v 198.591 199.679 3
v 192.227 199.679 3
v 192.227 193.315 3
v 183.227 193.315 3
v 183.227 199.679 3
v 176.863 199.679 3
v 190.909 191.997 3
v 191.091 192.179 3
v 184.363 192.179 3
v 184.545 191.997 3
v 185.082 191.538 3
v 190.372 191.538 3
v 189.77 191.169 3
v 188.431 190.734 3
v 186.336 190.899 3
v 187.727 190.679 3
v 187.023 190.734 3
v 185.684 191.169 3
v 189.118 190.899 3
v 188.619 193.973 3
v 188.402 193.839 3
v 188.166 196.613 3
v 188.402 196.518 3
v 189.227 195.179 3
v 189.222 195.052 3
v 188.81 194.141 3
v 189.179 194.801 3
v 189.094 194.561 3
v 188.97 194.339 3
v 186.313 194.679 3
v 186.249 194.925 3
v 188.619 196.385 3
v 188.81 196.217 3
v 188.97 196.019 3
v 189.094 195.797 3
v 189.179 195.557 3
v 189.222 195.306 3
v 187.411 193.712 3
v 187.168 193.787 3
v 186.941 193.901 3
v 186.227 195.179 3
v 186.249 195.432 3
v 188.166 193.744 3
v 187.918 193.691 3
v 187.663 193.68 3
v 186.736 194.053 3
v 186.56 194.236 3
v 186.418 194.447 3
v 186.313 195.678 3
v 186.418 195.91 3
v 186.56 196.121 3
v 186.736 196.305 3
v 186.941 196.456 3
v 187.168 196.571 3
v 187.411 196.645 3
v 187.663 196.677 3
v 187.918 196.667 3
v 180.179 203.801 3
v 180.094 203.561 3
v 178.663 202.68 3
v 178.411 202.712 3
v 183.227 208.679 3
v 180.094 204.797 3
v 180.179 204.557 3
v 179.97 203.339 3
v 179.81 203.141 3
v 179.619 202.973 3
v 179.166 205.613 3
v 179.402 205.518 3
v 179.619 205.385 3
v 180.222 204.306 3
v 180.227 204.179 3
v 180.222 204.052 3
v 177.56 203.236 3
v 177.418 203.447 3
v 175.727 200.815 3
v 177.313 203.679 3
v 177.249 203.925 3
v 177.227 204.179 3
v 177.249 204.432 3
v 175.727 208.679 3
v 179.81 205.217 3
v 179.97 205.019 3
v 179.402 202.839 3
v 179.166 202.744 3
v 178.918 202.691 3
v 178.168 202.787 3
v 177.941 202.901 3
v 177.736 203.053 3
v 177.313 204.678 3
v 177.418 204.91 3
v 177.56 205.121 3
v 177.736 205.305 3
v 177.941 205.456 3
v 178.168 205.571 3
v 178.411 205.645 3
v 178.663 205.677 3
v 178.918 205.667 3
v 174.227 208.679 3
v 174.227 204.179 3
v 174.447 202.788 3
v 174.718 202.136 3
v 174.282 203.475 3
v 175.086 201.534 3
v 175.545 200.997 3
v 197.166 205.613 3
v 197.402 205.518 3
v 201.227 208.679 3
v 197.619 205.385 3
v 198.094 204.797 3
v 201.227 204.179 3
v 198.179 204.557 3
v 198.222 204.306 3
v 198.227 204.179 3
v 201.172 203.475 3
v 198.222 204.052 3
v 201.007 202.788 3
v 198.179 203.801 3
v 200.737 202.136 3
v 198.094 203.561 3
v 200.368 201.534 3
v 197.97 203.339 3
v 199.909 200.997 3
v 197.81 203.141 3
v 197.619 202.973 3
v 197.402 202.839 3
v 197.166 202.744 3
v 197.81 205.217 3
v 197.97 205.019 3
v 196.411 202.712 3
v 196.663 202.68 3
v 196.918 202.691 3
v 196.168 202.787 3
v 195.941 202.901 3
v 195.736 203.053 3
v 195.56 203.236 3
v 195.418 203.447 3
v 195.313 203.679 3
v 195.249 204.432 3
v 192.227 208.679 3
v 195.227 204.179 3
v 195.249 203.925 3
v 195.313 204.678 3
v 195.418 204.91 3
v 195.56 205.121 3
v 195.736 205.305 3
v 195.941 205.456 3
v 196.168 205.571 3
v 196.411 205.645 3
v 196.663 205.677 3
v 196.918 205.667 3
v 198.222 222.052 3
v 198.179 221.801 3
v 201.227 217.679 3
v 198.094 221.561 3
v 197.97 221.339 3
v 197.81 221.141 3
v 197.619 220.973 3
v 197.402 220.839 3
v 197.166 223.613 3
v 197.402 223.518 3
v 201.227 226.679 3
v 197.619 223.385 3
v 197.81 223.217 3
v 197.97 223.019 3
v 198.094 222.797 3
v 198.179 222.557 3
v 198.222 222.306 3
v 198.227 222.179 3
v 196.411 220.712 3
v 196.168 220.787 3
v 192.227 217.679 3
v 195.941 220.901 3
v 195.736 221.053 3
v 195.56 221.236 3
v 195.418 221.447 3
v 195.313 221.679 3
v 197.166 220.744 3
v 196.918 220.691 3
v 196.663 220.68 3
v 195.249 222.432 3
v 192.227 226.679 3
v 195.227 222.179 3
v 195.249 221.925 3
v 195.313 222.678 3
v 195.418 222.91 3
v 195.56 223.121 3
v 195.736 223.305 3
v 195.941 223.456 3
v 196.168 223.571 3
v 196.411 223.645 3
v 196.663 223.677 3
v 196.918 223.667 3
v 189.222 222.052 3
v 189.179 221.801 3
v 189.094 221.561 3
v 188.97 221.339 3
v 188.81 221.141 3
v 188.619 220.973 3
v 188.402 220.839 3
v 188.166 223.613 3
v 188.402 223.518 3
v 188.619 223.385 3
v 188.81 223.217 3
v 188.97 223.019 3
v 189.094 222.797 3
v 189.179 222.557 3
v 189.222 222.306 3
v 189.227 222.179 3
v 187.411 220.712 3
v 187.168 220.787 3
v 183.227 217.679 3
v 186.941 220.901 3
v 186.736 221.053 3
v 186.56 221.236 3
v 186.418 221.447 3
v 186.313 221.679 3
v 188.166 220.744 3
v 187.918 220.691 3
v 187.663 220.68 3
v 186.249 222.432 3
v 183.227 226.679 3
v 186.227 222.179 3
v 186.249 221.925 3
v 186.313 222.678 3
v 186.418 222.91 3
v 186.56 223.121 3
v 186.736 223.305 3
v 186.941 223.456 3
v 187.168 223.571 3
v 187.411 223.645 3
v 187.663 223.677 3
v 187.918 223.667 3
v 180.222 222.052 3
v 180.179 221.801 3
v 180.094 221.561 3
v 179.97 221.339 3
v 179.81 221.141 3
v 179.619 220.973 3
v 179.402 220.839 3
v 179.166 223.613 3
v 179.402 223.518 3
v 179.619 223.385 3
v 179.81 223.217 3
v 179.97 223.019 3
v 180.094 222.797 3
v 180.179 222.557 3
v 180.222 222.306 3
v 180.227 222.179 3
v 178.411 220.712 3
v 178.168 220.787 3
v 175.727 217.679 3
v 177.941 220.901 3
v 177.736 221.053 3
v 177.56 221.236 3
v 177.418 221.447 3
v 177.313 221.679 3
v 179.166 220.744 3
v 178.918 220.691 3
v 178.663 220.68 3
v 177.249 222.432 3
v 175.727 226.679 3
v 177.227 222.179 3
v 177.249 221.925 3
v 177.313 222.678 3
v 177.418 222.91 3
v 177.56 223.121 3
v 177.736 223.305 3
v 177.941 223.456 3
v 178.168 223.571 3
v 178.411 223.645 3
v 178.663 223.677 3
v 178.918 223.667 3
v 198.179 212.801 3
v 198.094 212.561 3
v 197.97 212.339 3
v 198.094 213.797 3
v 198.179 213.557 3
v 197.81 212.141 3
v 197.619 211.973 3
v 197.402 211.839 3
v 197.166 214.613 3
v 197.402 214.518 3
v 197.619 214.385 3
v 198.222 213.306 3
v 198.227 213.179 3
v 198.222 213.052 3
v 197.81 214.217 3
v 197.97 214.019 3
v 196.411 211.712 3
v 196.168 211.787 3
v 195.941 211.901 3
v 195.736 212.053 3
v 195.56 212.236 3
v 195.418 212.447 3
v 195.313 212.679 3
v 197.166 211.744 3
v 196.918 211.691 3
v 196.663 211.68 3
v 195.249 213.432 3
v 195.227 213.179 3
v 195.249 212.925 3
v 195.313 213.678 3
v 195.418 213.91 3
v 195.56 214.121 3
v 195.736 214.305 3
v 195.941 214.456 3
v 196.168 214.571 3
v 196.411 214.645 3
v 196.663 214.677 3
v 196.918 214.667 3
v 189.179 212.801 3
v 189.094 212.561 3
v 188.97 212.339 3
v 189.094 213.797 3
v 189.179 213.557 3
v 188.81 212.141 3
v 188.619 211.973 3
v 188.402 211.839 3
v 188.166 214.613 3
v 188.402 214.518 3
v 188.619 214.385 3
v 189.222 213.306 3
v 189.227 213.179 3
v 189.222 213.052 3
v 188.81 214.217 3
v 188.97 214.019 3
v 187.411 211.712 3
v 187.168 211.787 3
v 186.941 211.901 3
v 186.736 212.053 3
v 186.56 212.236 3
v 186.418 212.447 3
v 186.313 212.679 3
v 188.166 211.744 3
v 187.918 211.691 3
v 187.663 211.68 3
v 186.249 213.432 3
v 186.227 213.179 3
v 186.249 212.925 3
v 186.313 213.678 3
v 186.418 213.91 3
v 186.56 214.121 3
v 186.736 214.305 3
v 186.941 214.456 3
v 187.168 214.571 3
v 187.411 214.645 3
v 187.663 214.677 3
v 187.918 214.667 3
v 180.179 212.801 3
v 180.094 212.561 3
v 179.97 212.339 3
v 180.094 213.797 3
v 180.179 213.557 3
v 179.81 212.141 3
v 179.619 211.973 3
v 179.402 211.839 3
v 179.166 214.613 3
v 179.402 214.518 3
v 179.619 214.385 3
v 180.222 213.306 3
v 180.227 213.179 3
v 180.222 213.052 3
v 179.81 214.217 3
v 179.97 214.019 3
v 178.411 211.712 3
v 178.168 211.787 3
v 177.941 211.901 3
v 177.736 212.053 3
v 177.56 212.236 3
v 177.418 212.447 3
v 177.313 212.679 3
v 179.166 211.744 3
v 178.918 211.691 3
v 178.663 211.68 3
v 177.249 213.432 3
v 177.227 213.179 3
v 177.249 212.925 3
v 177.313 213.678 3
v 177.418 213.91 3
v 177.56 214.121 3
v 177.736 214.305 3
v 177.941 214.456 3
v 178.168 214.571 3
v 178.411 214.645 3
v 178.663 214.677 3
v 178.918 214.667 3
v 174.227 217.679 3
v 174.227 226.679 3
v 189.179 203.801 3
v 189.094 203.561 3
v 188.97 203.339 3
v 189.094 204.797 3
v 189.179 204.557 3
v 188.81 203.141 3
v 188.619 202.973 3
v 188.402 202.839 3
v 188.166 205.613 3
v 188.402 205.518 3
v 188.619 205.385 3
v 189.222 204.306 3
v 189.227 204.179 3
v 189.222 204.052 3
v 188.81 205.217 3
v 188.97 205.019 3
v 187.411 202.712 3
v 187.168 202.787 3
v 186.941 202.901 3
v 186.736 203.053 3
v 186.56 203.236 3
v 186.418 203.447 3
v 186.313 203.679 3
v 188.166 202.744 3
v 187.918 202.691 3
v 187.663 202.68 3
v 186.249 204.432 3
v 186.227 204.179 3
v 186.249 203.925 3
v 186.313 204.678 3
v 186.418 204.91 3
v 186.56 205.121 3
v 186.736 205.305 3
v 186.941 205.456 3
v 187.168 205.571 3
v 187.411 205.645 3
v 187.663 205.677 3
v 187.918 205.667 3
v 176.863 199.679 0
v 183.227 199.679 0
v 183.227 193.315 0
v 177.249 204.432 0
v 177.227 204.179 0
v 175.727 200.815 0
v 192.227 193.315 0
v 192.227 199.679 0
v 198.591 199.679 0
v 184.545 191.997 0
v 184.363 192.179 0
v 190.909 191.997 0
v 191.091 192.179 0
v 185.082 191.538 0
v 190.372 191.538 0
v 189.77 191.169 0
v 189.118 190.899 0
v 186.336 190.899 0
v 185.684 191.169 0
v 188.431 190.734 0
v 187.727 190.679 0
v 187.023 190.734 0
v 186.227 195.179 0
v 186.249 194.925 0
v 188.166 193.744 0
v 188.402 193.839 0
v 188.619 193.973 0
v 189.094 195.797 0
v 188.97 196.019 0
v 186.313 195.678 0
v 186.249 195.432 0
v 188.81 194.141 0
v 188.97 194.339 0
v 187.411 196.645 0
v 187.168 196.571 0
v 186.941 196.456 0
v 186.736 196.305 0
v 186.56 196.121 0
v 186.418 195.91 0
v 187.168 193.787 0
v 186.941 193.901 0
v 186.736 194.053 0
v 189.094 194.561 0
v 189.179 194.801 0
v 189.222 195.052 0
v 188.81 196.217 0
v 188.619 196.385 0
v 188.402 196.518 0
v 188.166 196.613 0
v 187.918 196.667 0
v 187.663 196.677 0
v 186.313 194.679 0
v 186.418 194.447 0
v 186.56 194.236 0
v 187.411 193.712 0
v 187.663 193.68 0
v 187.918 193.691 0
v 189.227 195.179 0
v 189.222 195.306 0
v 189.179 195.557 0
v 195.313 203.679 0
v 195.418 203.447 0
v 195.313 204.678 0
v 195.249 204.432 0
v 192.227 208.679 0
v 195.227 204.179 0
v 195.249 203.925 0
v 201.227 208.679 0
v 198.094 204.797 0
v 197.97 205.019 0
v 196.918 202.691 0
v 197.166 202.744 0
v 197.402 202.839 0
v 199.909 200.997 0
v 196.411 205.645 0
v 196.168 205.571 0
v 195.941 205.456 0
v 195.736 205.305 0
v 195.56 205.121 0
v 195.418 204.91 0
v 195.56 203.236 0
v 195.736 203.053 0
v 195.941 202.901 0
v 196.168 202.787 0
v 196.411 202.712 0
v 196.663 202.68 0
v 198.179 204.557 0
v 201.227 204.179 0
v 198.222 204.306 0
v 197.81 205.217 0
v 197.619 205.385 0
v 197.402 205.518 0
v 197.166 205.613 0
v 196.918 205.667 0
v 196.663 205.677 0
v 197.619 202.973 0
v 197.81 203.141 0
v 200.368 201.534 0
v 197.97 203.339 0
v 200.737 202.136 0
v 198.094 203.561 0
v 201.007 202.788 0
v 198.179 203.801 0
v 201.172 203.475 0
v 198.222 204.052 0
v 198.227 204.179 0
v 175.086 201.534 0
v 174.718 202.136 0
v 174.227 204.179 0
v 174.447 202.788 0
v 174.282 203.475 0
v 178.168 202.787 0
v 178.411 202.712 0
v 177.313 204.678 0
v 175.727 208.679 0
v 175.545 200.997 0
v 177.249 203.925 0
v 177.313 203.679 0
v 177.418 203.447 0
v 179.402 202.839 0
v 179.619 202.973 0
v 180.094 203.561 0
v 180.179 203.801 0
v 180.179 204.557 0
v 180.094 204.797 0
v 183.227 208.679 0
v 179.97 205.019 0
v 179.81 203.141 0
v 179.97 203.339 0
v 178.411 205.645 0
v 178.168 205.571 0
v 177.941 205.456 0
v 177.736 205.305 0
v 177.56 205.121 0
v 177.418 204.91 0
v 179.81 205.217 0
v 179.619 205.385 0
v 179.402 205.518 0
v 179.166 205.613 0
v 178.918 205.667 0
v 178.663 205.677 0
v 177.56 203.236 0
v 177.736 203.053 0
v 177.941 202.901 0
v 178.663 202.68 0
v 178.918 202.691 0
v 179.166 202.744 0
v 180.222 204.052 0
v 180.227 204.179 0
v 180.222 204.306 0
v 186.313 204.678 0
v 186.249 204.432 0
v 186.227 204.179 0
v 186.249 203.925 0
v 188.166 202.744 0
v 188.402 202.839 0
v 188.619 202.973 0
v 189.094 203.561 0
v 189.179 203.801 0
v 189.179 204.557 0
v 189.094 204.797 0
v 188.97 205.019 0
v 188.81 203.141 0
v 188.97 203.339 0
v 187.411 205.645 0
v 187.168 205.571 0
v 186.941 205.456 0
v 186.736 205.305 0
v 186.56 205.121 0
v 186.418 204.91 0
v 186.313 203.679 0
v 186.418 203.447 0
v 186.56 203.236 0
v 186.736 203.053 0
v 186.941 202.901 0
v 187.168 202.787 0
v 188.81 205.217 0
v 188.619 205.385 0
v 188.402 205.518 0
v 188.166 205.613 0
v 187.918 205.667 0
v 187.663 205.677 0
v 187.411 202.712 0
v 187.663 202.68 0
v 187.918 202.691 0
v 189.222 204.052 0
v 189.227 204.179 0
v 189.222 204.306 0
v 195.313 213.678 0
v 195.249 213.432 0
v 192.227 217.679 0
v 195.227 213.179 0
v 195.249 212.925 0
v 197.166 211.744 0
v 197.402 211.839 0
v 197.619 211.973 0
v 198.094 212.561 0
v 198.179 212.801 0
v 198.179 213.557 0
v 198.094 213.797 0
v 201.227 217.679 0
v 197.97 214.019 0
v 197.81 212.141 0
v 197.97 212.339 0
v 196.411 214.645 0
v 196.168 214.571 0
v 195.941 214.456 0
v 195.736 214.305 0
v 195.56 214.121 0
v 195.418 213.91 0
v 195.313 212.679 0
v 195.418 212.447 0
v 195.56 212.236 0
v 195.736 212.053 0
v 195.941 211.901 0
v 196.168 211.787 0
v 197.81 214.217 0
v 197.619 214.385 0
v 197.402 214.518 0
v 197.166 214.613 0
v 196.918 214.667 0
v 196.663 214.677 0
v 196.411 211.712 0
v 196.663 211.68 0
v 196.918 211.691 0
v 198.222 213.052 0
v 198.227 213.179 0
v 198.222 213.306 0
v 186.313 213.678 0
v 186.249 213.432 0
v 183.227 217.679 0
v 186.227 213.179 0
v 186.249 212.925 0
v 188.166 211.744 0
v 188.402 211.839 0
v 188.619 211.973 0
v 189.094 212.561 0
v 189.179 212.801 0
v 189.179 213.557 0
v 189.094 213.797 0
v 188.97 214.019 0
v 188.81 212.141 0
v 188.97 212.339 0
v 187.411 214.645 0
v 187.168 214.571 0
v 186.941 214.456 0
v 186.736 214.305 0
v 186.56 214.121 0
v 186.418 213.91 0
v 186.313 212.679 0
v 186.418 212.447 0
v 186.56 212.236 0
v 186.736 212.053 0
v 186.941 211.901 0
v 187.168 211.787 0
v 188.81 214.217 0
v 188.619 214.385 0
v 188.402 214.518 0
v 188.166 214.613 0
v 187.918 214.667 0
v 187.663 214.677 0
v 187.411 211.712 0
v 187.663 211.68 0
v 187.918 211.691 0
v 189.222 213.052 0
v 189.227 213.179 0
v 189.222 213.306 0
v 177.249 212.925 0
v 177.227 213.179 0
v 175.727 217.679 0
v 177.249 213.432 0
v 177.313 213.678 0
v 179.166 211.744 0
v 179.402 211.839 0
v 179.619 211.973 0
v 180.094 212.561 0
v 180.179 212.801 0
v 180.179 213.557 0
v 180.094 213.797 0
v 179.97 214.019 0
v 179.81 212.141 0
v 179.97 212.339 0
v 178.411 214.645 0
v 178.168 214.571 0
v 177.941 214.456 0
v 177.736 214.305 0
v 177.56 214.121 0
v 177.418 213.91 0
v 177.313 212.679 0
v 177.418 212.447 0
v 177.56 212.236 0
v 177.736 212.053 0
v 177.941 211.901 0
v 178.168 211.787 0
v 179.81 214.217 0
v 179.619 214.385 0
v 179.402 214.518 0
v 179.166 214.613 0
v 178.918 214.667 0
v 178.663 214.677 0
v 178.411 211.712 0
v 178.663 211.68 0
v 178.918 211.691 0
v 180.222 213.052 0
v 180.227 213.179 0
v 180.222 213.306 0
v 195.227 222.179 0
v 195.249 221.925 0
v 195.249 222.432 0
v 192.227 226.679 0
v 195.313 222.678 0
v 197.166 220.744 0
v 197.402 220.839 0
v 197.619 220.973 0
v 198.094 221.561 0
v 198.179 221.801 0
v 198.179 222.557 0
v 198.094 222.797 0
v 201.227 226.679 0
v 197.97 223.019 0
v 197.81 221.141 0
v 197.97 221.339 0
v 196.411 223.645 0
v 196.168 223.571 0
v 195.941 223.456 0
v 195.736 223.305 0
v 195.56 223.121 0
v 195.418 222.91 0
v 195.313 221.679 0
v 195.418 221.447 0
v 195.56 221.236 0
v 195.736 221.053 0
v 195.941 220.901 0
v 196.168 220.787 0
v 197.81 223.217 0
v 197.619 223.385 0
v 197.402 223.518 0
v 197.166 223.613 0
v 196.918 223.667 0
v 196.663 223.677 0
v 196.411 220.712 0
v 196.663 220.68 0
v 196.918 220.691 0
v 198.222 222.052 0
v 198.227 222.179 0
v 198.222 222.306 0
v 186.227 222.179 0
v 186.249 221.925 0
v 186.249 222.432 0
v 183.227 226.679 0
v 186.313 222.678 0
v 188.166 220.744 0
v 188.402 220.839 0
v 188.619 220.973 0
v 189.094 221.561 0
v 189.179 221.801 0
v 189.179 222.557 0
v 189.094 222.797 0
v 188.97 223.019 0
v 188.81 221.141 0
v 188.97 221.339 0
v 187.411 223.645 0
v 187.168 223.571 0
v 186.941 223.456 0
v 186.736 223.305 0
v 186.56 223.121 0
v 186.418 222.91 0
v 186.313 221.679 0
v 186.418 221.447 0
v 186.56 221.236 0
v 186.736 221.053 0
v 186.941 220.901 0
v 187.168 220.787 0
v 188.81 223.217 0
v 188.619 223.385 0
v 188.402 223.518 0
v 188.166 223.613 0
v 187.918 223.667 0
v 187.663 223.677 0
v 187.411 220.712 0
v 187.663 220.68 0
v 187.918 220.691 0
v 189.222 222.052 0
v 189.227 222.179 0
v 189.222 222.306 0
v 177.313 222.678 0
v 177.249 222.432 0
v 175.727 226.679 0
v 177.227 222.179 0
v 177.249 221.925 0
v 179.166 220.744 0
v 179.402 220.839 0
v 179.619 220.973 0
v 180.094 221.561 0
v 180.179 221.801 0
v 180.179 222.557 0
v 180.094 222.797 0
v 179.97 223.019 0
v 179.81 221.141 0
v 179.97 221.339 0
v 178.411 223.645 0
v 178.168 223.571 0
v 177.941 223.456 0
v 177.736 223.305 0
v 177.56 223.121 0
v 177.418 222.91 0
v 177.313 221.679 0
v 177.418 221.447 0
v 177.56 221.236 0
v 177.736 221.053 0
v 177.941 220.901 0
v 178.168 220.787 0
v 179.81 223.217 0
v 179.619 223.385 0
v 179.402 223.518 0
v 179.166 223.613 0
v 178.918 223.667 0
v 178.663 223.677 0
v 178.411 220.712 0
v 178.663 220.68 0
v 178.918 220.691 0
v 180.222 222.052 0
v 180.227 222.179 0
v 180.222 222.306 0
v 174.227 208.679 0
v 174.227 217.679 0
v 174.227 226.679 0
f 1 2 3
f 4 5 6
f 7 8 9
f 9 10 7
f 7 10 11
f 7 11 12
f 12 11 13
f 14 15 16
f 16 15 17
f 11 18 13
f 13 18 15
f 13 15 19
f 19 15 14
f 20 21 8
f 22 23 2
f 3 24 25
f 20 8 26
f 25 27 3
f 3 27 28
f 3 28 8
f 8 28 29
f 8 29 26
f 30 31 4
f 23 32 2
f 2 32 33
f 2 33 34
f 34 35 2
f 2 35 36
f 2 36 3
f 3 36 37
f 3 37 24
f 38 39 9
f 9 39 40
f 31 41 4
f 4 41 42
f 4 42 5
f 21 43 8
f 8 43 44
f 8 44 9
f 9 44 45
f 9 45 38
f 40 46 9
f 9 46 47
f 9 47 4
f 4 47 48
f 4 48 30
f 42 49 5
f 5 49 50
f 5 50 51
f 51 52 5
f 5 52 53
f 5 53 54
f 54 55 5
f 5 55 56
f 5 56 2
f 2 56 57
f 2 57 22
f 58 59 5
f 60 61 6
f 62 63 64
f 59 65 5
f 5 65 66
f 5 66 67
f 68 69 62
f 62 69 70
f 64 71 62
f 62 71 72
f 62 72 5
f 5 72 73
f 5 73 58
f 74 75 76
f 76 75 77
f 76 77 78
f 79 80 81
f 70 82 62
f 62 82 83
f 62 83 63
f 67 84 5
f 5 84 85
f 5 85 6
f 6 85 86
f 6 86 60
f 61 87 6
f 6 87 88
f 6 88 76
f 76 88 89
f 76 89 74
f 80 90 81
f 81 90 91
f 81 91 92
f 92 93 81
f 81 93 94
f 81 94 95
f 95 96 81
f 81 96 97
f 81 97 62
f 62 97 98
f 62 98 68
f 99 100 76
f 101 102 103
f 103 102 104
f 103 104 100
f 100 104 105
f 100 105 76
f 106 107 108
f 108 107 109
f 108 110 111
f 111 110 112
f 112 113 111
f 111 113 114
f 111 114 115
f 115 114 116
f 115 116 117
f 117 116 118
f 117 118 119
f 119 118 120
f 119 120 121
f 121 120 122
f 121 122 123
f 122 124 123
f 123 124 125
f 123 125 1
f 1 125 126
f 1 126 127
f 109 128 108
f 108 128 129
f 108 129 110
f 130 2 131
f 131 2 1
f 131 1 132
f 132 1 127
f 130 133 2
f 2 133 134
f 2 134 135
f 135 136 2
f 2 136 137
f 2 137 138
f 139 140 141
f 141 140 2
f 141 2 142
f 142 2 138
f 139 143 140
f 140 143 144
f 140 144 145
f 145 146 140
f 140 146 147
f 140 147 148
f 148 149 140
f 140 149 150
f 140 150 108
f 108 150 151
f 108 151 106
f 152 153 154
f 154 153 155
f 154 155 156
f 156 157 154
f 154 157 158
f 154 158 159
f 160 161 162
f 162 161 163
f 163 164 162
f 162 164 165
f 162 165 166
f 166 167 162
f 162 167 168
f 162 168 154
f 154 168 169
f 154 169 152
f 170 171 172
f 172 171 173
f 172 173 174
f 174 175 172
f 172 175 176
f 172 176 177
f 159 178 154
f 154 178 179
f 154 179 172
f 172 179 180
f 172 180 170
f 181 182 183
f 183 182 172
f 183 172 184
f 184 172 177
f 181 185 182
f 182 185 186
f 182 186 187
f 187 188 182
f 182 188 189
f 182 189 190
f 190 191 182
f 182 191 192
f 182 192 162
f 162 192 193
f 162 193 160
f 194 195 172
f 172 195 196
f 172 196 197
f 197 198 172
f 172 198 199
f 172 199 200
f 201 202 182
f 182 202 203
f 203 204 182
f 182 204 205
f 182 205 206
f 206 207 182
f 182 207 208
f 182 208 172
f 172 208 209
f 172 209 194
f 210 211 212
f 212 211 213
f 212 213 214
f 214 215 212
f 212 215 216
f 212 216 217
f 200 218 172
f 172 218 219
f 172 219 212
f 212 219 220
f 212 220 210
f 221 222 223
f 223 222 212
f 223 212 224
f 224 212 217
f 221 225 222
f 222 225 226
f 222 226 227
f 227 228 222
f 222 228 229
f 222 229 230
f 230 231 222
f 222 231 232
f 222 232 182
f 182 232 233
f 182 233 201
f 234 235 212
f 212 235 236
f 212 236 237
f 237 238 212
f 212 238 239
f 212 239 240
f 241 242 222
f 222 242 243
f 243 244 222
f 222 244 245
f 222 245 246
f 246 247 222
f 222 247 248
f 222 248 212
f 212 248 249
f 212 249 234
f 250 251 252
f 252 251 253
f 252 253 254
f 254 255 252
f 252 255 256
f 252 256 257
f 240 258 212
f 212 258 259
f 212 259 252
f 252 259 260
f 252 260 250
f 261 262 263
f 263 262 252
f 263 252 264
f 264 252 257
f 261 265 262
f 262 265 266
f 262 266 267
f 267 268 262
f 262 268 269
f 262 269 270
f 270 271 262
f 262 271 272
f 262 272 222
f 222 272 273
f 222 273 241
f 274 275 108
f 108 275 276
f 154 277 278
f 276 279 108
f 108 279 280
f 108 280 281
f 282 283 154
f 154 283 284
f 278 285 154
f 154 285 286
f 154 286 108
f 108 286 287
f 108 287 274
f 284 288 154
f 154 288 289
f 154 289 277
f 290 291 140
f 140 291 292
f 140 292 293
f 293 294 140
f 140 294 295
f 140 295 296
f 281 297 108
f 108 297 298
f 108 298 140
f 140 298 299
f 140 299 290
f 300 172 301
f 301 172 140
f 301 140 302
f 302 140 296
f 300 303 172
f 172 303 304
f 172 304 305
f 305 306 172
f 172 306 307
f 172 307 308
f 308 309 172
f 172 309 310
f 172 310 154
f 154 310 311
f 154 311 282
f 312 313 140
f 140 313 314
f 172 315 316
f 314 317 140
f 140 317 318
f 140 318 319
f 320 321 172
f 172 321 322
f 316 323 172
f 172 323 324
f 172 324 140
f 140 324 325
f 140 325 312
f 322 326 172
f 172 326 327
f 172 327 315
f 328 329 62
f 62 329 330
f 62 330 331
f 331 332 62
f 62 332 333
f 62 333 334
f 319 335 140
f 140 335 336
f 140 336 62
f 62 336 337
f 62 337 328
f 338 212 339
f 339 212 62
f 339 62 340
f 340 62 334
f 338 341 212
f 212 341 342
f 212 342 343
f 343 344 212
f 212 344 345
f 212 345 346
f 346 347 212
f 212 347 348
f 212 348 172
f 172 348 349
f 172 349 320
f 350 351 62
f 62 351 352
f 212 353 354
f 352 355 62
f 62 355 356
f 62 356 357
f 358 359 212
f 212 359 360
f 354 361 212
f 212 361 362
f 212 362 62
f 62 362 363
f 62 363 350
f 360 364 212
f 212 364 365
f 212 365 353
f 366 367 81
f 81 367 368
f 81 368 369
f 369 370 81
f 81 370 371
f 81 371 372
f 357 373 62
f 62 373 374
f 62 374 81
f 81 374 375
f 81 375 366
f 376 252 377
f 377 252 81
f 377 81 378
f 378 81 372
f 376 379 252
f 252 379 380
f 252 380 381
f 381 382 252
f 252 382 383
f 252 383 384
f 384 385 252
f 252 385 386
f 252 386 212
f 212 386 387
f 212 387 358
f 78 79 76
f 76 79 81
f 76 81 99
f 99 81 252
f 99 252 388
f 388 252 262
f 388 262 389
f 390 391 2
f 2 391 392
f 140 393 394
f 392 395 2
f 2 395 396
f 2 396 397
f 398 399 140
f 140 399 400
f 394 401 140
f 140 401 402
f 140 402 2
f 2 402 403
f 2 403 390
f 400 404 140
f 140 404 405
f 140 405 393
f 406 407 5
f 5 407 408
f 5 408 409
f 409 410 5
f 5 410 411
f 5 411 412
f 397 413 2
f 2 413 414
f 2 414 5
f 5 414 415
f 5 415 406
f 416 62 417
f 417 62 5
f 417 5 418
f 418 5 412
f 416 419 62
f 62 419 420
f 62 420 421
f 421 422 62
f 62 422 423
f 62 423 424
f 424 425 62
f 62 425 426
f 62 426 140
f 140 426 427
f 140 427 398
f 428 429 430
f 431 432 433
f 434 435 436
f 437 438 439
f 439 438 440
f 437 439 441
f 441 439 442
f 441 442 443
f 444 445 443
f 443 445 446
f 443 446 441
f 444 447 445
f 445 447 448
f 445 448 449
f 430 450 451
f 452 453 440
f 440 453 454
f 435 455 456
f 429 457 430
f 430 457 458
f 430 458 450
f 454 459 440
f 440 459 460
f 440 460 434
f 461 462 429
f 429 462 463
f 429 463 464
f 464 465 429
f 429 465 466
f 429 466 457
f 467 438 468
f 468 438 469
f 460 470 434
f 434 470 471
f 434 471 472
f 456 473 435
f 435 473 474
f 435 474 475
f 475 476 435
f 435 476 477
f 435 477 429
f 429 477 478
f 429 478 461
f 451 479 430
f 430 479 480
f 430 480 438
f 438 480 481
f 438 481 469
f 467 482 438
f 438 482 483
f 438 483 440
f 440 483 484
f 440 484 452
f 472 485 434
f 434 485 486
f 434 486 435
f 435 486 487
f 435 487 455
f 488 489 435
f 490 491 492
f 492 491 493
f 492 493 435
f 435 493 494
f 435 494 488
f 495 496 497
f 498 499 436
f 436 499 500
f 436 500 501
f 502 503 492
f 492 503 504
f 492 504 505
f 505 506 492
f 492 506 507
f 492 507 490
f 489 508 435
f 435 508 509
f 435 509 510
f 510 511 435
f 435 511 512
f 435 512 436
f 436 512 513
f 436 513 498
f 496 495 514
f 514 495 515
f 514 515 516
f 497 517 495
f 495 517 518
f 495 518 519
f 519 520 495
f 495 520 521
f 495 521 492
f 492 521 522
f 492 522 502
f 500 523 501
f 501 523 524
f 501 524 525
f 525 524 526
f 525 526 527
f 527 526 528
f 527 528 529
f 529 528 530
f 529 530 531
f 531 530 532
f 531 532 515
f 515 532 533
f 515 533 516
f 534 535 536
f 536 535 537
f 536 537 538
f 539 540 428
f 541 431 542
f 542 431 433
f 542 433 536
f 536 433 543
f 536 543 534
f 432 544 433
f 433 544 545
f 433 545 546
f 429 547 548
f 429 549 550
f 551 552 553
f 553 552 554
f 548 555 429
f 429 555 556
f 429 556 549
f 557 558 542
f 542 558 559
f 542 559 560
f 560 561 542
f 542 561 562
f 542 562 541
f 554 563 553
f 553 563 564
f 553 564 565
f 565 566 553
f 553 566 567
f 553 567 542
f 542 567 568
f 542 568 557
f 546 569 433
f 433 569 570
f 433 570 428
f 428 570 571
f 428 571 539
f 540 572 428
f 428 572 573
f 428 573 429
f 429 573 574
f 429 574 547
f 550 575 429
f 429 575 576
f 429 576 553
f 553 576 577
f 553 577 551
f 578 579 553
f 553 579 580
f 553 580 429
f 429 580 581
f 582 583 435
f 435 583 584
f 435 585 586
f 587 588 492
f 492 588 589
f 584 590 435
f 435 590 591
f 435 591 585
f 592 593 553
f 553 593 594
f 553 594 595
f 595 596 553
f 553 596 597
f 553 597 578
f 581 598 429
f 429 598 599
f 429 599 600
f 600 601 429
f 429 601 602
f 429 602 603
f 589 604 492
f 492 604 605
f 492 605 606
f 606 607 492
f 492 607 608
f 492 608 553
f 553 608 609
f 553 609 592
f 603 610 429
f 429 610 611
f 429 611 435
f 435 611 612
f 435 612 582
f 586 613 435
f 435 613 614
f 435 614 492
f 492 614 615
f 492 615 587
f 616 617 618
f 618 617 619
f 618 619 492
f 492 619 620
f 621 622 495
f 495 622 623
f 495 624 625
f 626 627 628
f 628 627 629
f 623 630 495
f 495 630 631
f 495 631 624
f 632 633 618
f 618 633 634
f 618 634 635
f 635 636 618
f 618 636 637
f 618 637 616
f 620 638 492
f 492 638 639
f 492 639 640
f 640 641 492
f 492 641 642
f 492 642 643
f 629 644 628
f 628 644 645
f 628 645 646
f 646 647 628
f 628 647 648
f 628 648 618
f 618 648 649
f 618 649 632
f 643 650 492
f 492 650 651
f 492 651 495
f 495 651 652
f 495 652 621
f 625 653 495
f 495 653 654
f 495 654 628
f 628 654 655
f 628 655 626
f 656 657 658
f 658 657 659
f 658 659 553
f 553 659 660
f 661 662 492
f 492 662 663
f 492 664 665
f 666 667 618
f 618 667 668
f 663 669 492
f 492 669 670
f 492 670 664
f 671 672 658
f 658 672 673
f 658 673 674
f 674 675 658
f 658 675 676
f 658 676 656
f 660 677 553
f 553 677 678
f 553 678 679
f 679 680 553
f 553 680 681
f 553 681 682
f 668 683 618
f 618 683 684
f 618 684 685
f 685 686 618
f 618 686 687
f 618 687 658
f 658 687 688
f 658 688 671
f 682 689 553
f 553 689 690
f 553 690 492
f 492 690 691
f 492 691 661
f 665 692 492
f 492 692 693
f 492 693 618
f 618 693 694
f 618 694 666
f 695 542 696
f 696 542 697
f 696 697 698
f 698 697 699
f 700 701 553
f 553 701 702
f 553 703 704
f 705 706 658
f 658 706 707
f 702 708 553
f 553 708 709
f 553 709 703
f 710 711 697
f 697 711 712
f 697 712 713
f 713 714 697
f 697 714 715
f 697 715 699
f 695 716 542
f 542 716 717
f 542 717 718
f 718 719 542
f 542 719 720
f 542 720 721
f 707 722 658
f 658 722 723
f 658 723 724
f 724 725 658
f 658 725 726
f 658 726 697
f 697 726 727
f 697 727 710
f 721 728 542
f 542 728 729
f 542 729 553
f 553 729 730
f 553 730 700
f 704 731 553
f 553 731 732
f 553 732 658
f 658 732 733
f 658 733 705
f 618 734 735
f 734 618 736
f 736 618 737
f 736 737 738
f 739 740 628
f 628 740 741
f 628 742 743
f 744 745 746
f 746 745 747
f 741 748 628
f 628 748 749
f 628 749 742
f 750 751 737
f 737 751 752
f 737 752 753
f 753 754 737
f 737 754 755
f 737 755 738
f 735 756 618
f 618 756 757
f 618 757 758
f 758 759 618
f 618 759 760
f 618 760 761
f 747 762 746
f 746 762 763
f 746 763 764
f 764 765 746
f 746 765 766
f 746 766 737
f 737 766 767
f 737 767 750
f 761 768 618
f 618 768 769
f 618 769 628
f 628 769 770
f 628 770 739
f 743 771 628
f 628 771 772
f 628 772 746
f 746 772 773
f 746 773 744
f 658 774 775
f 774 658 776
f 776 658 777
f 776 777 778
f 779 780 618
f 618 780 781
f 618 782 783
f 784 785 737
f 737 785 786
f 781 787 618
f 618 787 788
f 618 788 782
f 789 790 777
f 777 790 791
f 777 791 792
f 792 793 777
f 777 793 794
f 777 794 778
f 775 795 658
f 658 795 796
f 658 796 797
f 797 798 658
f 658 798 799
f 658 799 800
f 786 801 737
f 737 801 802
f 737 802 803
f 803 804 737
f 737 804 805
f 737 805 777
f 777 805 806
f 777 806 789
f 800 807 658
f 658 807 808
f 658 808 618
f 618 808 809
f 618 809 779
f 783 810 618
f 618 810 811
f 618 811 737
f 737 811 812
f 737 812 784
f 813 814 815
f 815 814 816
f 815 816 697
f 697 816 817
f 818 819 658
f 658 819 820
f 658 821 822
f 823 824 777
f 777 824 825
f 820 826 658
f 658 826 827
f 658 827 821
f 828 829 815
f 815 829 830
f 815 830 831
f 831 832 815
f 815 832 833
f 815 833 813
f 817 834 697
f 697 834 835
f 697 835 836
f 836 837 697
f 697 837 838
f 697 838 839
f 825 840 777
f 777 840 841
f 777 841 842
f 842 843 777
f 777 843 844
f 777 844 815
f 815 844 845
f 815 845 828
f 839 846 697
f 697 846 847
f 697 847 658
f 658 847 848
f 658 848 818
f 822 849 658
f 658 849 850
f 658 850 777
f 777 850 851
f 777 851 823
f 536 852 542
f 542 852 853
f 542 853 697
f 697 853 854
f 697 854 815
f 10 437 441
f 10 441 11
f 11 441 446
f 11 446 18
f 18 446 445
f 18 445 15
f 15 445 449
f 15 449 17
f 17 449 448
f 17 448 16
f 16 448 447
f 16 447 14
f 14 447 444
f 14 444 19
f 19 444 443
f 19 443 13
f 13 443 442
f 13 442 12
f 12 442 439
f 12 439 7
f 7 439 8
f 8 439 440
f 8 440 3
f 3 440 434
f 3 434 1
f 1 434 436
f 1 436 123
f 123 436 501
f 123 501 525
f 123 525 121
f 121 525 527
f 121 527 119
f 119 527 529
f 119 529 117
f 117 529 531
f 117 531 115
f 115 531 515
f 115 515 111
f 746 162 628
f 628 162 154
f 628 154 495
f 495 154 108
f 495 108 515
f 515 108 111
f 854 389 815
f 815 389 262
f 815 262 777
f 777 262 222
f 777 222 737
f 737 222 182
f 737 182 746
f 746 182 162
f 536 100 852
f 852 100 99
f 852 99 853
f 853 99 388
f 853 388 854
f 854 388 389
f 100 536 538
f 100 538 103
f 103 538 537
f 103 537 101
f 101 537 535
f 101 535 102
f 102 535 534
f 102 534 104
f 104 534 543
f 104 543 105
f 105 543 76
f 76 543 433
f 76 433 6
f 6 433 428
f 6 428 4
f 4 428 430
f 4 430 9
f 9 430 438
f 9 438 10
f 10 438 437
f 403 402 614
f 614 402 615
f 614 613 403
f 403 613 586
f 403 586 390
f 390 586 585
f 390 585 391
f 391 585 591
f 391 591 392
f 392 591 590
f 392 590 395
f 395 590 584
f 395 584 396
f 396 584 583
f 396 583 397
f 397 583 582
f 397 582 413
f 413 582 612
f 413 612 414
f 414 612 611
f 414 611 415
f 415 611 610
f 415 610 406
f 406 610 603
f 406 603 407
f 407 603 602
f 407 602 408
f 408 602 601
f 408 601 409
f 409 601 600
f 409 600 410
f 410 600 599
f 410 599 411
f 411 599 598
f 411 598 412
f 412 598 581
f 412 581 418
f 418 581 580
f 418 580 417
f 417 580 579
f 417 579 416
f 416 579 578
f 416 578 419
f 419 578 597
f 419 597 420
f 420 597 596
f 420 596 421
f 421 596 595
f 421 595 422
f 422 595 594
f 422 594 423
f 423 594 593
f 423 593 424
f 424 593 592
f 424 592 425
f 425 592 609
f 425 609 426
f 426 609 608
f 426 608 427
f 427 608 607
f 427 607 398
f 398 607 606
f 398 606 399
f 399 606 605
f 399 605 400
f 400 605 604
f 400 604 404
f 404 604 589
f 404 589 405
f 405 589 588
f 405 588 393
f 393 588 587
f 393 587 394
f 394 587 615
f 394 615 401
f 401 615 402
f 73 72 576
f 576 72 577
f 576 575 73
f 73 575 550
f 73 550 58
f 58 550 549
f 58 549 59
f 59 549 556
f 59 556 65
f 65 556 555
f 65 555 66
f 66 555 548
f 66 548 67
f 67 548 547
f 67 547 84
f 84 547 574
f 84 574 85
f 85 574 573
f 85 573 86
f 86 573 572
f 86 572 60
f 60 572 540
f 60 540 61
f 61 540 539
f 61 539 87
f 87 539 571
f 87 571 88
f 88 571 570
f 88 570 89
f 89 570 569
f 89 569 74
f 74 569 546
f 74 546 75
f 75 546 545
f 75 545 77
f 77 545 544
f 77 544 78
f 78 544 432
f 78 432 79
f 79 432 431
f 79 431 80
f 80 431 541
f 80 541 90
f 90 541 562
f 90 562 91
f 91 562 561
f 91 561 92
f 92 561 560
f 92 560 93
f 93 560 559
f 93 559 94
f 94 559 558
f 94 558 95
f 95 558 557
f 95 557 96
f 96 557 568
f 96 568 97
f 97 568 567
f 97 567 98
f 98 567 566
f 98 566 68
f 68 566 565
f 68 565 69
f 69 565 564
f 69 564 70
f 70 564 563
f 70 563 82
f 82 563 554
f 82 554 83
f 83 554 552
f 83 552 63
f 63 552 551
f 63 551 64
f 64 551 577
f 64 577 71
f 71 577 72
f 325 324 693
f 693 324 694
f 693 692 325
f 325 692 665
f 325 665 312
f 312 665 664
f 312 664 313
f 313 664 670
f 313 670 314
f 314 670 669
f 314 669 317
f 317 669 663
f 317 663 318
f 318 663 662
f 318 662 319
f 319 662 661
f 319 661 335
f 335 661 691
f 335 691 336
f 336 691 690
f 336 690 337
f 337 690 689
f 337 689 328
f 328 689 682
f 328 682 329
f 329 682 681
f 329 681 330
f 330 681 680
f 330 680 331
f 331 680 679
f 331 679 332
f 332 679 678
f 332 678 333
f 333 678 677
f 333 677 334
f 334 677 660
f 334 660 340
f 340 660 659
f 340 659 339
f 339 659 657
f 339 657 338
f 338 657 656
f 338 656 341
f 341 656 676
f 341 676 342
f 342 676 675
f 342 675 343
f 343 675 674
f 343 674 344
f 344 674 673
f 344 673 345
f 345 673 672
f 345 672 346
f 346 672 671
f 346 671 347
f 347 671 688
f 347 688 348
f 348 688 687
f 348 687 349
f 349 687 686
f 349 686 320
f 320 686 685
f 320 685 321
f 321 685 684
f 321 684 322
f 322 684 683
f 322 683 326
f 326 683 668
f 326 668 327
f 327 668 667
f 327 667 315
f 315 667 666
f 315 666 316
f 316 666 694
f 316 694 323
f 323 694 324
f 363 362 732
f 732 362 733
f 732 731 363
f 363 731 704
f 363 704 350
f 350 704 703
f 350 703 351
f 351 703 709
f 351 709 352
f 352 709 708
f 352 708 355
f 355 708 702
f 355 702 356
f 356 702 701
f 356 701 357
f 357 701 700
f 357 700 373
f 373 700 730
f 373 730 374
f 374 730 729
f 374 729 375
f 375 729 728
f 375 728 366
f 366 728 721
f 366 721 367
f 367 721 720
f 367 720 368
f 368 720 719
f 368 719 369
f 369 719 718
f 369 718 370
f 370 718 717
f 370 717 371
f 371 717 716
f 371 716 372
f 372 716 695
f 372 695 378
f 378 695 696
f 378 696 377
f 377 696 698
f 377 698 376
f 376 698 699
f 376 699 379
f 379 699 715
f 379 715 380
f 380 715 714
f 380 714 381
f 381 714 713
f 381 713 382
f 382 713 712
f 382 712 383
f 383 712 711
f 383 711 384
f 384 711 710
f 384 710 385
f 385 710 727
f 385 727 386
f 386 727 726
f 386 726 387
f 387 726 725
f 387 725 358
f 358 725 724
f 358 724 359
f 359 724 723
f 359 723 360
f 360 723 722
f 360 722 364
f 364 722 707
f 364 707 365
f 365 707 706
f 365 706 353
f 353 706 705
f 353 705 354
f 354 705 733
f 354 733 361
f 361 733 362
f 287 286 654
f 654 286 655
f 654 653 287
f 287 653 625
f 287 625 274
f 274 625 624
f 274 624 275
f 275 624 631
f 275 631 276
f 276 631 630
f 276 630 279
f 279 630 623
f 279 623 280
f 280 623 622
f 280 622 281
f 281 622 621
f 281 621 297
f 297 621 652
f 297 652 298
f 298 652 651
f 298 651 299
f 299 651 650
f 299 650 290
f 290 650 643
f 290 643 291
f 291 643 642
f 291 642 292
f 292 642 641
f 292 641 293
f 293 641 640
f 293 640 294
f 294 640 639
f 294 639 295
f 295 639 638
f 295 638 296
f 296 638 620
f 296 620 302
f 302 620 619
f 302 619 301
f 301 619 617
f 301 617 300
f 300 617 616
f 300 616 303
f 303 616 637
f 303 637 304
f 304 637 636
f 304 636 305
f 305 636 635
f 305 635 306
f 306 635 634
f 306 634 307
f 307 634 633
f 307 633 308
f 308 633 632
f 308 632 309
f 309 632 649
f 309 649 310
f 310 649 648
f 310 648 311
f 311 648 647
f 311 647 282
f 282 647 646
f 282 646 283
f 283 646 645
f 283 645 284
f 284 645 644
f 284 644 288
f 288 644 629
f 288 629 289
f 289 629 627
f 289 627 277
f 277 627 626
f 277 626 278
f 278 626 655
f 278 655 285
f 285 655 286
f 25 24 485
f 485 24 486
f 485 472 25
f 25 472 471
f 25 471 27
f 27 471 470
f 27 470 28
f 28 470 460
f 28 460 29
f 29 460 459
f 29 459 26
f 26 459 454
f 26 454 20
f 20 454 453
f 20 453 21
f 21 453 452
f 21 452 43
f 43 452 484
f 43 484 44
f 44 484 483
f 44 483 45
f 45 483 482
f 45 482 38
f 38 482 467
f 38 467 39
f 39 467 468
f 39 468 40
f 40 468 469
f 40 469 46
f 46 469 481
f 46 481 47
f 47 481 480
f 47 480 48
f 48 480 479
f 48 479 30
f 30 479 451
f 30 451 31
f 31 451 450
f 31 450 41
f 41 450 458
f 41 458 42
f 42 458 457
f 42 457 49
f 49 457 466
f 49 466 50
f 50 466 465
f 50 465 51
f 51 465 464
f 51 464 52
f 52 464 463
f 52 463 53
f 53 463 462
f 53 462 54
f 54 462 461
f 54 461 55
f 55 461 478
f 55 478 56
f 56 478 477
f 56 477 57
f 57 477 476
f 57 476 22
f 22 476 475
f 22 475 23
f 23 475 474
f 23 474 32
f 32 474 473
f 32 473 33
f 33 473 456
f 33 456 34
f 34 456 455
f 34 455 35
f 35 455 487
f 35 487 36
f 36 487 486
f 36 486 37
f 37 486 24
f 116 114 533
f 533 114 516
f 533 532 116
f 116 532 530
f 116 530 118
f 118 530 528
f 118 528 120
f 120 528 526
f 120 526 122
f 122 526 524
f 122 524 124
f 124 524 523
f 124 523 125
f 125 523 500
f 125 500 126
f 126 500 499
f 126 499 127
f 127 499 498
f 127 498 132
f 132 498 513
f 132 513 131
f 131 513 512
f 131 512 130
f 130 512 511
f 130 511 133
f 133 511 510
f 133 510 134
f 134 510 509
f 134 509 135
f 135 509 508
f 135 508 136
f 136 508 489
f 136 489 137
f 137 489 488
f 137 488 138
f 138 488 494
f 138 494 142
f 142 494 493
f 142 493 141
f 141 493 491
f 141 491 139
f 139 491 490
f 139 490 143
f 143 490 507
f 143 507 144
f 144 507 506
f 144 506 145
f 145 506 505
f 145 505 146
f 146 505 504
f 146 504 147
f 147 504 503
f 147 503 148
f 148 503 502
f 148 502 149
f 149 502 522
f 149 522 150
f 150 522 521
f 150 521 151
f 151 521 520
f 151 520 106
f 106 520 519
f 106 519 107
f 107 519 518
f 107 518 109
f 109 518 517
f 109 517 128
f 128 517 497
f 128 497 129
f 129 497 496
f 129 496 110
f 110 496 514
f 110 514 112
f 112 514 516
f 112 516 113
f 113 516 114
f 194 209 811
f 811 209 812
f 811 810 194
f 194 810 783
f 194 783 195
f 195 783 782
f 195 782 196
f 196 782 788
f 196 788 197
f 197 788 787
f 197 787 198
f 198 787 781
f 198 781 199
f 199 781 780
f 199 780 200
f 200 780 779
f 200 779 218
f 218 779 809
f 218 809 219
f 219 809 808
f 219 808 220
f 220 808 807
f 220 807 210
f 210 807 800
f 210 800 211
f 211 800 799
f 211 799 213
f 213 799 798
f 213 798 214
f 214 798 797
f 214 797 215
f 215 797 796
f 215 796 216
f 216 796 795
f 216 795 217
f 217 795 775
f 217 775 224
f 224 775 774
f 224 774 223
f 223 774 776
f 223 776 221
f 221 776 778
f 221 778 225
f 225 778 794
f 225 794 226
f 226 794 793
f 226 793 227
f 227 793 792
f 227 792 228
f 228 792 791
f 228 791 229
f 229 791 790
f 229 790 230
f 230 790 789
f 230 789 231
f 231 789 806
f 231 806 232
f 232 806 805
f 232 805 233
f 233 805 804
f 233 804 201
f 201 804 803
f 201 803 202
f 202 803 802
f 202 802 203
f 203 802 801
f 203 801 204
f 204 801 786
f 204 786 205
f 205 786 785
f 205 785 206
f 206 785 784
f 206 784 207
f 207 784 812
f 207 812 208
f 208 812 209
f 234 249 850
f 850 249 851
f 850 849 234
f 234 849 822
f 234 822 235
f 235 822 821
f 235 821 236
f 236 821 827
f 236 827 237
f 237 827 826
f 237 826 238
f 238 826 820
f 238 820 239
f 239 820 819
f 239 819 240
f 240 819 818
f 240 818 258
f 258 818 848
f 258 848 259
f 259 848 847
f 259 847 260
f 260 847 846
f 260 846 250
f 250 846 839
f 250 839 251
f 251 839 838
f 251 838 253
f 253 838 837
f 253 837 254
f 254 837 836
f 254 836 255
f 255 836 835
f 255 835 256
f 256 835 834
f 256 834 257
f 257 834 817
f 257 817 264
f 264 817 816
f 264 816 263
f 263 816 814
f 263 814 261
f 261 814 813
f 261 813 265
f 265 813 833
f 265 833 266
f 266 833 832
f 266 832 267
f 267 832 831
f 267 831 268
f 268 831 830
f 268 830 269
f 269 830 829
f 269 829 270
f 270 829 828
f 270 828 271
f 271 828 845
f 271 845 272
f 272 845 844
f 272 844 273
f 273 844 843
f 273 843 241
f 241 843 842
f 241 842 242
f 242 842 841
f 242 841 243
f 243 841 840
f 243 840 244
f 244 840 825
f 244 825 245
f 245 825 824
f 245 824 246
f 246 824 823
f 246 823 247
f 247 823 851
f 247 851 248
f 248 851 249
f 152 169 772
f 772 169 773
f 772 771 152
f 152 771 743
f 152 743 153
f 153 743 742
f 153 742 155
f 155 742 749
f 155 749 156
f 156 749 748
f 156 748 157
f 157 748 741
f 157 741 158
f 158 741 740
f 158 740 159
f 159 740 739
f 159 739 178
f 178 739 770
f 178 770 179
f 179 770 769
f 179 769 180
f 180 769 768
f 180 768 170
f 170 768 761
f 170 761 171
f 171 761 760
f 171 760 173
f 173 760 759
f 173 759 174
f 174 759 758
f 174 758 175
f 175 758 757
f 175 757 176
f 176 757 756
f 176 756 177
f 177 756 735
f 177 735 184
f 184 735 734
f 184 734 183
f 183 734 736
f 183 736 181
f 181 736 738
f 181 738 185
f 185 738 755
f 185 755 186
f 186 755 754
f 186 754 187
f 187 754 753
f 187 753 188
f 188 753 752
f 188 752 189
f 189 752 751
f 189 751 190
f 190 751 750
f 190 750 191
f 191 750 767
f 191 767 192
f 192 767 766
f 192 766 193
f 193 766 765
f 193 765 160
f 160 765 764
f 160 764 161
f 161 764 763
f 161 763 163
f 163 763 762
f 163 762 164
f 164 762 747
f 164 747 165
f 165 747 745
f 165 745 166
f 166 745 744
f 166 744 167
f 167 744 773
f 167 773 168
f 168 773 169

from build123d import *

# Parameters (mm, degrees)
MODEL_R                 = 1.5
SALIENTE_EXTRUIR1_DEPTH = 3


with BuildPart() as part:
    # Model → Saliente-Extruir1 (new body)
    with BuildSketch(Plane.XY):
        with BuildLine():
            Line((174.227054575, 213.178720063), (174.227054575, 204.178720063))
            ThreePointArc((174.227054575, 204.178720063), (174.569596678, 202.456644617), (175.545074059, 200.996739548))
            Line((175.545074059, 200.996739548), (184.545074059, 191.996739548))
            ThreePointArc((184.545074059, 191.996739548), (187.727054575, 190.678720063), (190.90903509, 191.996739548))
            Line((190.90903509, 191.996739548), (199.90903509, 200.996739548))
            ThreePointArc((199.90903509, 200.996739548), (200.884512471, 202.456644617), (201.227054575, 204.178720063))
            Line((201.227054575, 204.178720063), (201.227054575, 226.678720063))
            Line((201.227054575, 226.678720063), (174.227054575, 226.678720063))
            Line((174.227054575, 226.678720063), (174.227054575, 213.178720063))
        make_face()
        with Locations((187.727054575, 204.178720063)):
            Circle(MODEL_R, mode=Mode.SUBTRACT)
        with Locations((178.727054575, 204.178720063)):
            Circle(MODEL_R, mode=Mode.SUBTRACT)
        with Locations((187.727054575, 213.178720063)):
            Circle(MODEL_R, mode=Mode.SUBTRACT)
        with Locations((178.727054575, 213.178720063)):
            Circle(MODEL_R, mode=Mode.SUBTRACT)
        with Locations((196.727054575, 213.178720063)):
            Circle(MODEL_R, mode=Mode.SUBTRACT)
        with Locations((187.727054575, 195.178720063)):
            Circle(MODEL_R, mode=Mode.SUBTRACT)
        with Locations((196.727054575, 204.178720063)):
            Circle(MODEL_R, mode=Mode.SUBTRACT)
        with Locations((187.727054575, 222.178720063)):
            Circle(MODEL_R, mode=Mode.SUBTRACT)
        with Locations((178.727054575, 222.178720063)):
            Circle(MODEL_R, mode=Mode.SUBTRACT)
        with Locations((196.727054575, 222.178720063)):
            Circle(MODEL_R, mode=Mode.SUBTRACT)
    extrude(amount=SALIENTE_EXTRUIR1_DEPTH)


solid = part.part
